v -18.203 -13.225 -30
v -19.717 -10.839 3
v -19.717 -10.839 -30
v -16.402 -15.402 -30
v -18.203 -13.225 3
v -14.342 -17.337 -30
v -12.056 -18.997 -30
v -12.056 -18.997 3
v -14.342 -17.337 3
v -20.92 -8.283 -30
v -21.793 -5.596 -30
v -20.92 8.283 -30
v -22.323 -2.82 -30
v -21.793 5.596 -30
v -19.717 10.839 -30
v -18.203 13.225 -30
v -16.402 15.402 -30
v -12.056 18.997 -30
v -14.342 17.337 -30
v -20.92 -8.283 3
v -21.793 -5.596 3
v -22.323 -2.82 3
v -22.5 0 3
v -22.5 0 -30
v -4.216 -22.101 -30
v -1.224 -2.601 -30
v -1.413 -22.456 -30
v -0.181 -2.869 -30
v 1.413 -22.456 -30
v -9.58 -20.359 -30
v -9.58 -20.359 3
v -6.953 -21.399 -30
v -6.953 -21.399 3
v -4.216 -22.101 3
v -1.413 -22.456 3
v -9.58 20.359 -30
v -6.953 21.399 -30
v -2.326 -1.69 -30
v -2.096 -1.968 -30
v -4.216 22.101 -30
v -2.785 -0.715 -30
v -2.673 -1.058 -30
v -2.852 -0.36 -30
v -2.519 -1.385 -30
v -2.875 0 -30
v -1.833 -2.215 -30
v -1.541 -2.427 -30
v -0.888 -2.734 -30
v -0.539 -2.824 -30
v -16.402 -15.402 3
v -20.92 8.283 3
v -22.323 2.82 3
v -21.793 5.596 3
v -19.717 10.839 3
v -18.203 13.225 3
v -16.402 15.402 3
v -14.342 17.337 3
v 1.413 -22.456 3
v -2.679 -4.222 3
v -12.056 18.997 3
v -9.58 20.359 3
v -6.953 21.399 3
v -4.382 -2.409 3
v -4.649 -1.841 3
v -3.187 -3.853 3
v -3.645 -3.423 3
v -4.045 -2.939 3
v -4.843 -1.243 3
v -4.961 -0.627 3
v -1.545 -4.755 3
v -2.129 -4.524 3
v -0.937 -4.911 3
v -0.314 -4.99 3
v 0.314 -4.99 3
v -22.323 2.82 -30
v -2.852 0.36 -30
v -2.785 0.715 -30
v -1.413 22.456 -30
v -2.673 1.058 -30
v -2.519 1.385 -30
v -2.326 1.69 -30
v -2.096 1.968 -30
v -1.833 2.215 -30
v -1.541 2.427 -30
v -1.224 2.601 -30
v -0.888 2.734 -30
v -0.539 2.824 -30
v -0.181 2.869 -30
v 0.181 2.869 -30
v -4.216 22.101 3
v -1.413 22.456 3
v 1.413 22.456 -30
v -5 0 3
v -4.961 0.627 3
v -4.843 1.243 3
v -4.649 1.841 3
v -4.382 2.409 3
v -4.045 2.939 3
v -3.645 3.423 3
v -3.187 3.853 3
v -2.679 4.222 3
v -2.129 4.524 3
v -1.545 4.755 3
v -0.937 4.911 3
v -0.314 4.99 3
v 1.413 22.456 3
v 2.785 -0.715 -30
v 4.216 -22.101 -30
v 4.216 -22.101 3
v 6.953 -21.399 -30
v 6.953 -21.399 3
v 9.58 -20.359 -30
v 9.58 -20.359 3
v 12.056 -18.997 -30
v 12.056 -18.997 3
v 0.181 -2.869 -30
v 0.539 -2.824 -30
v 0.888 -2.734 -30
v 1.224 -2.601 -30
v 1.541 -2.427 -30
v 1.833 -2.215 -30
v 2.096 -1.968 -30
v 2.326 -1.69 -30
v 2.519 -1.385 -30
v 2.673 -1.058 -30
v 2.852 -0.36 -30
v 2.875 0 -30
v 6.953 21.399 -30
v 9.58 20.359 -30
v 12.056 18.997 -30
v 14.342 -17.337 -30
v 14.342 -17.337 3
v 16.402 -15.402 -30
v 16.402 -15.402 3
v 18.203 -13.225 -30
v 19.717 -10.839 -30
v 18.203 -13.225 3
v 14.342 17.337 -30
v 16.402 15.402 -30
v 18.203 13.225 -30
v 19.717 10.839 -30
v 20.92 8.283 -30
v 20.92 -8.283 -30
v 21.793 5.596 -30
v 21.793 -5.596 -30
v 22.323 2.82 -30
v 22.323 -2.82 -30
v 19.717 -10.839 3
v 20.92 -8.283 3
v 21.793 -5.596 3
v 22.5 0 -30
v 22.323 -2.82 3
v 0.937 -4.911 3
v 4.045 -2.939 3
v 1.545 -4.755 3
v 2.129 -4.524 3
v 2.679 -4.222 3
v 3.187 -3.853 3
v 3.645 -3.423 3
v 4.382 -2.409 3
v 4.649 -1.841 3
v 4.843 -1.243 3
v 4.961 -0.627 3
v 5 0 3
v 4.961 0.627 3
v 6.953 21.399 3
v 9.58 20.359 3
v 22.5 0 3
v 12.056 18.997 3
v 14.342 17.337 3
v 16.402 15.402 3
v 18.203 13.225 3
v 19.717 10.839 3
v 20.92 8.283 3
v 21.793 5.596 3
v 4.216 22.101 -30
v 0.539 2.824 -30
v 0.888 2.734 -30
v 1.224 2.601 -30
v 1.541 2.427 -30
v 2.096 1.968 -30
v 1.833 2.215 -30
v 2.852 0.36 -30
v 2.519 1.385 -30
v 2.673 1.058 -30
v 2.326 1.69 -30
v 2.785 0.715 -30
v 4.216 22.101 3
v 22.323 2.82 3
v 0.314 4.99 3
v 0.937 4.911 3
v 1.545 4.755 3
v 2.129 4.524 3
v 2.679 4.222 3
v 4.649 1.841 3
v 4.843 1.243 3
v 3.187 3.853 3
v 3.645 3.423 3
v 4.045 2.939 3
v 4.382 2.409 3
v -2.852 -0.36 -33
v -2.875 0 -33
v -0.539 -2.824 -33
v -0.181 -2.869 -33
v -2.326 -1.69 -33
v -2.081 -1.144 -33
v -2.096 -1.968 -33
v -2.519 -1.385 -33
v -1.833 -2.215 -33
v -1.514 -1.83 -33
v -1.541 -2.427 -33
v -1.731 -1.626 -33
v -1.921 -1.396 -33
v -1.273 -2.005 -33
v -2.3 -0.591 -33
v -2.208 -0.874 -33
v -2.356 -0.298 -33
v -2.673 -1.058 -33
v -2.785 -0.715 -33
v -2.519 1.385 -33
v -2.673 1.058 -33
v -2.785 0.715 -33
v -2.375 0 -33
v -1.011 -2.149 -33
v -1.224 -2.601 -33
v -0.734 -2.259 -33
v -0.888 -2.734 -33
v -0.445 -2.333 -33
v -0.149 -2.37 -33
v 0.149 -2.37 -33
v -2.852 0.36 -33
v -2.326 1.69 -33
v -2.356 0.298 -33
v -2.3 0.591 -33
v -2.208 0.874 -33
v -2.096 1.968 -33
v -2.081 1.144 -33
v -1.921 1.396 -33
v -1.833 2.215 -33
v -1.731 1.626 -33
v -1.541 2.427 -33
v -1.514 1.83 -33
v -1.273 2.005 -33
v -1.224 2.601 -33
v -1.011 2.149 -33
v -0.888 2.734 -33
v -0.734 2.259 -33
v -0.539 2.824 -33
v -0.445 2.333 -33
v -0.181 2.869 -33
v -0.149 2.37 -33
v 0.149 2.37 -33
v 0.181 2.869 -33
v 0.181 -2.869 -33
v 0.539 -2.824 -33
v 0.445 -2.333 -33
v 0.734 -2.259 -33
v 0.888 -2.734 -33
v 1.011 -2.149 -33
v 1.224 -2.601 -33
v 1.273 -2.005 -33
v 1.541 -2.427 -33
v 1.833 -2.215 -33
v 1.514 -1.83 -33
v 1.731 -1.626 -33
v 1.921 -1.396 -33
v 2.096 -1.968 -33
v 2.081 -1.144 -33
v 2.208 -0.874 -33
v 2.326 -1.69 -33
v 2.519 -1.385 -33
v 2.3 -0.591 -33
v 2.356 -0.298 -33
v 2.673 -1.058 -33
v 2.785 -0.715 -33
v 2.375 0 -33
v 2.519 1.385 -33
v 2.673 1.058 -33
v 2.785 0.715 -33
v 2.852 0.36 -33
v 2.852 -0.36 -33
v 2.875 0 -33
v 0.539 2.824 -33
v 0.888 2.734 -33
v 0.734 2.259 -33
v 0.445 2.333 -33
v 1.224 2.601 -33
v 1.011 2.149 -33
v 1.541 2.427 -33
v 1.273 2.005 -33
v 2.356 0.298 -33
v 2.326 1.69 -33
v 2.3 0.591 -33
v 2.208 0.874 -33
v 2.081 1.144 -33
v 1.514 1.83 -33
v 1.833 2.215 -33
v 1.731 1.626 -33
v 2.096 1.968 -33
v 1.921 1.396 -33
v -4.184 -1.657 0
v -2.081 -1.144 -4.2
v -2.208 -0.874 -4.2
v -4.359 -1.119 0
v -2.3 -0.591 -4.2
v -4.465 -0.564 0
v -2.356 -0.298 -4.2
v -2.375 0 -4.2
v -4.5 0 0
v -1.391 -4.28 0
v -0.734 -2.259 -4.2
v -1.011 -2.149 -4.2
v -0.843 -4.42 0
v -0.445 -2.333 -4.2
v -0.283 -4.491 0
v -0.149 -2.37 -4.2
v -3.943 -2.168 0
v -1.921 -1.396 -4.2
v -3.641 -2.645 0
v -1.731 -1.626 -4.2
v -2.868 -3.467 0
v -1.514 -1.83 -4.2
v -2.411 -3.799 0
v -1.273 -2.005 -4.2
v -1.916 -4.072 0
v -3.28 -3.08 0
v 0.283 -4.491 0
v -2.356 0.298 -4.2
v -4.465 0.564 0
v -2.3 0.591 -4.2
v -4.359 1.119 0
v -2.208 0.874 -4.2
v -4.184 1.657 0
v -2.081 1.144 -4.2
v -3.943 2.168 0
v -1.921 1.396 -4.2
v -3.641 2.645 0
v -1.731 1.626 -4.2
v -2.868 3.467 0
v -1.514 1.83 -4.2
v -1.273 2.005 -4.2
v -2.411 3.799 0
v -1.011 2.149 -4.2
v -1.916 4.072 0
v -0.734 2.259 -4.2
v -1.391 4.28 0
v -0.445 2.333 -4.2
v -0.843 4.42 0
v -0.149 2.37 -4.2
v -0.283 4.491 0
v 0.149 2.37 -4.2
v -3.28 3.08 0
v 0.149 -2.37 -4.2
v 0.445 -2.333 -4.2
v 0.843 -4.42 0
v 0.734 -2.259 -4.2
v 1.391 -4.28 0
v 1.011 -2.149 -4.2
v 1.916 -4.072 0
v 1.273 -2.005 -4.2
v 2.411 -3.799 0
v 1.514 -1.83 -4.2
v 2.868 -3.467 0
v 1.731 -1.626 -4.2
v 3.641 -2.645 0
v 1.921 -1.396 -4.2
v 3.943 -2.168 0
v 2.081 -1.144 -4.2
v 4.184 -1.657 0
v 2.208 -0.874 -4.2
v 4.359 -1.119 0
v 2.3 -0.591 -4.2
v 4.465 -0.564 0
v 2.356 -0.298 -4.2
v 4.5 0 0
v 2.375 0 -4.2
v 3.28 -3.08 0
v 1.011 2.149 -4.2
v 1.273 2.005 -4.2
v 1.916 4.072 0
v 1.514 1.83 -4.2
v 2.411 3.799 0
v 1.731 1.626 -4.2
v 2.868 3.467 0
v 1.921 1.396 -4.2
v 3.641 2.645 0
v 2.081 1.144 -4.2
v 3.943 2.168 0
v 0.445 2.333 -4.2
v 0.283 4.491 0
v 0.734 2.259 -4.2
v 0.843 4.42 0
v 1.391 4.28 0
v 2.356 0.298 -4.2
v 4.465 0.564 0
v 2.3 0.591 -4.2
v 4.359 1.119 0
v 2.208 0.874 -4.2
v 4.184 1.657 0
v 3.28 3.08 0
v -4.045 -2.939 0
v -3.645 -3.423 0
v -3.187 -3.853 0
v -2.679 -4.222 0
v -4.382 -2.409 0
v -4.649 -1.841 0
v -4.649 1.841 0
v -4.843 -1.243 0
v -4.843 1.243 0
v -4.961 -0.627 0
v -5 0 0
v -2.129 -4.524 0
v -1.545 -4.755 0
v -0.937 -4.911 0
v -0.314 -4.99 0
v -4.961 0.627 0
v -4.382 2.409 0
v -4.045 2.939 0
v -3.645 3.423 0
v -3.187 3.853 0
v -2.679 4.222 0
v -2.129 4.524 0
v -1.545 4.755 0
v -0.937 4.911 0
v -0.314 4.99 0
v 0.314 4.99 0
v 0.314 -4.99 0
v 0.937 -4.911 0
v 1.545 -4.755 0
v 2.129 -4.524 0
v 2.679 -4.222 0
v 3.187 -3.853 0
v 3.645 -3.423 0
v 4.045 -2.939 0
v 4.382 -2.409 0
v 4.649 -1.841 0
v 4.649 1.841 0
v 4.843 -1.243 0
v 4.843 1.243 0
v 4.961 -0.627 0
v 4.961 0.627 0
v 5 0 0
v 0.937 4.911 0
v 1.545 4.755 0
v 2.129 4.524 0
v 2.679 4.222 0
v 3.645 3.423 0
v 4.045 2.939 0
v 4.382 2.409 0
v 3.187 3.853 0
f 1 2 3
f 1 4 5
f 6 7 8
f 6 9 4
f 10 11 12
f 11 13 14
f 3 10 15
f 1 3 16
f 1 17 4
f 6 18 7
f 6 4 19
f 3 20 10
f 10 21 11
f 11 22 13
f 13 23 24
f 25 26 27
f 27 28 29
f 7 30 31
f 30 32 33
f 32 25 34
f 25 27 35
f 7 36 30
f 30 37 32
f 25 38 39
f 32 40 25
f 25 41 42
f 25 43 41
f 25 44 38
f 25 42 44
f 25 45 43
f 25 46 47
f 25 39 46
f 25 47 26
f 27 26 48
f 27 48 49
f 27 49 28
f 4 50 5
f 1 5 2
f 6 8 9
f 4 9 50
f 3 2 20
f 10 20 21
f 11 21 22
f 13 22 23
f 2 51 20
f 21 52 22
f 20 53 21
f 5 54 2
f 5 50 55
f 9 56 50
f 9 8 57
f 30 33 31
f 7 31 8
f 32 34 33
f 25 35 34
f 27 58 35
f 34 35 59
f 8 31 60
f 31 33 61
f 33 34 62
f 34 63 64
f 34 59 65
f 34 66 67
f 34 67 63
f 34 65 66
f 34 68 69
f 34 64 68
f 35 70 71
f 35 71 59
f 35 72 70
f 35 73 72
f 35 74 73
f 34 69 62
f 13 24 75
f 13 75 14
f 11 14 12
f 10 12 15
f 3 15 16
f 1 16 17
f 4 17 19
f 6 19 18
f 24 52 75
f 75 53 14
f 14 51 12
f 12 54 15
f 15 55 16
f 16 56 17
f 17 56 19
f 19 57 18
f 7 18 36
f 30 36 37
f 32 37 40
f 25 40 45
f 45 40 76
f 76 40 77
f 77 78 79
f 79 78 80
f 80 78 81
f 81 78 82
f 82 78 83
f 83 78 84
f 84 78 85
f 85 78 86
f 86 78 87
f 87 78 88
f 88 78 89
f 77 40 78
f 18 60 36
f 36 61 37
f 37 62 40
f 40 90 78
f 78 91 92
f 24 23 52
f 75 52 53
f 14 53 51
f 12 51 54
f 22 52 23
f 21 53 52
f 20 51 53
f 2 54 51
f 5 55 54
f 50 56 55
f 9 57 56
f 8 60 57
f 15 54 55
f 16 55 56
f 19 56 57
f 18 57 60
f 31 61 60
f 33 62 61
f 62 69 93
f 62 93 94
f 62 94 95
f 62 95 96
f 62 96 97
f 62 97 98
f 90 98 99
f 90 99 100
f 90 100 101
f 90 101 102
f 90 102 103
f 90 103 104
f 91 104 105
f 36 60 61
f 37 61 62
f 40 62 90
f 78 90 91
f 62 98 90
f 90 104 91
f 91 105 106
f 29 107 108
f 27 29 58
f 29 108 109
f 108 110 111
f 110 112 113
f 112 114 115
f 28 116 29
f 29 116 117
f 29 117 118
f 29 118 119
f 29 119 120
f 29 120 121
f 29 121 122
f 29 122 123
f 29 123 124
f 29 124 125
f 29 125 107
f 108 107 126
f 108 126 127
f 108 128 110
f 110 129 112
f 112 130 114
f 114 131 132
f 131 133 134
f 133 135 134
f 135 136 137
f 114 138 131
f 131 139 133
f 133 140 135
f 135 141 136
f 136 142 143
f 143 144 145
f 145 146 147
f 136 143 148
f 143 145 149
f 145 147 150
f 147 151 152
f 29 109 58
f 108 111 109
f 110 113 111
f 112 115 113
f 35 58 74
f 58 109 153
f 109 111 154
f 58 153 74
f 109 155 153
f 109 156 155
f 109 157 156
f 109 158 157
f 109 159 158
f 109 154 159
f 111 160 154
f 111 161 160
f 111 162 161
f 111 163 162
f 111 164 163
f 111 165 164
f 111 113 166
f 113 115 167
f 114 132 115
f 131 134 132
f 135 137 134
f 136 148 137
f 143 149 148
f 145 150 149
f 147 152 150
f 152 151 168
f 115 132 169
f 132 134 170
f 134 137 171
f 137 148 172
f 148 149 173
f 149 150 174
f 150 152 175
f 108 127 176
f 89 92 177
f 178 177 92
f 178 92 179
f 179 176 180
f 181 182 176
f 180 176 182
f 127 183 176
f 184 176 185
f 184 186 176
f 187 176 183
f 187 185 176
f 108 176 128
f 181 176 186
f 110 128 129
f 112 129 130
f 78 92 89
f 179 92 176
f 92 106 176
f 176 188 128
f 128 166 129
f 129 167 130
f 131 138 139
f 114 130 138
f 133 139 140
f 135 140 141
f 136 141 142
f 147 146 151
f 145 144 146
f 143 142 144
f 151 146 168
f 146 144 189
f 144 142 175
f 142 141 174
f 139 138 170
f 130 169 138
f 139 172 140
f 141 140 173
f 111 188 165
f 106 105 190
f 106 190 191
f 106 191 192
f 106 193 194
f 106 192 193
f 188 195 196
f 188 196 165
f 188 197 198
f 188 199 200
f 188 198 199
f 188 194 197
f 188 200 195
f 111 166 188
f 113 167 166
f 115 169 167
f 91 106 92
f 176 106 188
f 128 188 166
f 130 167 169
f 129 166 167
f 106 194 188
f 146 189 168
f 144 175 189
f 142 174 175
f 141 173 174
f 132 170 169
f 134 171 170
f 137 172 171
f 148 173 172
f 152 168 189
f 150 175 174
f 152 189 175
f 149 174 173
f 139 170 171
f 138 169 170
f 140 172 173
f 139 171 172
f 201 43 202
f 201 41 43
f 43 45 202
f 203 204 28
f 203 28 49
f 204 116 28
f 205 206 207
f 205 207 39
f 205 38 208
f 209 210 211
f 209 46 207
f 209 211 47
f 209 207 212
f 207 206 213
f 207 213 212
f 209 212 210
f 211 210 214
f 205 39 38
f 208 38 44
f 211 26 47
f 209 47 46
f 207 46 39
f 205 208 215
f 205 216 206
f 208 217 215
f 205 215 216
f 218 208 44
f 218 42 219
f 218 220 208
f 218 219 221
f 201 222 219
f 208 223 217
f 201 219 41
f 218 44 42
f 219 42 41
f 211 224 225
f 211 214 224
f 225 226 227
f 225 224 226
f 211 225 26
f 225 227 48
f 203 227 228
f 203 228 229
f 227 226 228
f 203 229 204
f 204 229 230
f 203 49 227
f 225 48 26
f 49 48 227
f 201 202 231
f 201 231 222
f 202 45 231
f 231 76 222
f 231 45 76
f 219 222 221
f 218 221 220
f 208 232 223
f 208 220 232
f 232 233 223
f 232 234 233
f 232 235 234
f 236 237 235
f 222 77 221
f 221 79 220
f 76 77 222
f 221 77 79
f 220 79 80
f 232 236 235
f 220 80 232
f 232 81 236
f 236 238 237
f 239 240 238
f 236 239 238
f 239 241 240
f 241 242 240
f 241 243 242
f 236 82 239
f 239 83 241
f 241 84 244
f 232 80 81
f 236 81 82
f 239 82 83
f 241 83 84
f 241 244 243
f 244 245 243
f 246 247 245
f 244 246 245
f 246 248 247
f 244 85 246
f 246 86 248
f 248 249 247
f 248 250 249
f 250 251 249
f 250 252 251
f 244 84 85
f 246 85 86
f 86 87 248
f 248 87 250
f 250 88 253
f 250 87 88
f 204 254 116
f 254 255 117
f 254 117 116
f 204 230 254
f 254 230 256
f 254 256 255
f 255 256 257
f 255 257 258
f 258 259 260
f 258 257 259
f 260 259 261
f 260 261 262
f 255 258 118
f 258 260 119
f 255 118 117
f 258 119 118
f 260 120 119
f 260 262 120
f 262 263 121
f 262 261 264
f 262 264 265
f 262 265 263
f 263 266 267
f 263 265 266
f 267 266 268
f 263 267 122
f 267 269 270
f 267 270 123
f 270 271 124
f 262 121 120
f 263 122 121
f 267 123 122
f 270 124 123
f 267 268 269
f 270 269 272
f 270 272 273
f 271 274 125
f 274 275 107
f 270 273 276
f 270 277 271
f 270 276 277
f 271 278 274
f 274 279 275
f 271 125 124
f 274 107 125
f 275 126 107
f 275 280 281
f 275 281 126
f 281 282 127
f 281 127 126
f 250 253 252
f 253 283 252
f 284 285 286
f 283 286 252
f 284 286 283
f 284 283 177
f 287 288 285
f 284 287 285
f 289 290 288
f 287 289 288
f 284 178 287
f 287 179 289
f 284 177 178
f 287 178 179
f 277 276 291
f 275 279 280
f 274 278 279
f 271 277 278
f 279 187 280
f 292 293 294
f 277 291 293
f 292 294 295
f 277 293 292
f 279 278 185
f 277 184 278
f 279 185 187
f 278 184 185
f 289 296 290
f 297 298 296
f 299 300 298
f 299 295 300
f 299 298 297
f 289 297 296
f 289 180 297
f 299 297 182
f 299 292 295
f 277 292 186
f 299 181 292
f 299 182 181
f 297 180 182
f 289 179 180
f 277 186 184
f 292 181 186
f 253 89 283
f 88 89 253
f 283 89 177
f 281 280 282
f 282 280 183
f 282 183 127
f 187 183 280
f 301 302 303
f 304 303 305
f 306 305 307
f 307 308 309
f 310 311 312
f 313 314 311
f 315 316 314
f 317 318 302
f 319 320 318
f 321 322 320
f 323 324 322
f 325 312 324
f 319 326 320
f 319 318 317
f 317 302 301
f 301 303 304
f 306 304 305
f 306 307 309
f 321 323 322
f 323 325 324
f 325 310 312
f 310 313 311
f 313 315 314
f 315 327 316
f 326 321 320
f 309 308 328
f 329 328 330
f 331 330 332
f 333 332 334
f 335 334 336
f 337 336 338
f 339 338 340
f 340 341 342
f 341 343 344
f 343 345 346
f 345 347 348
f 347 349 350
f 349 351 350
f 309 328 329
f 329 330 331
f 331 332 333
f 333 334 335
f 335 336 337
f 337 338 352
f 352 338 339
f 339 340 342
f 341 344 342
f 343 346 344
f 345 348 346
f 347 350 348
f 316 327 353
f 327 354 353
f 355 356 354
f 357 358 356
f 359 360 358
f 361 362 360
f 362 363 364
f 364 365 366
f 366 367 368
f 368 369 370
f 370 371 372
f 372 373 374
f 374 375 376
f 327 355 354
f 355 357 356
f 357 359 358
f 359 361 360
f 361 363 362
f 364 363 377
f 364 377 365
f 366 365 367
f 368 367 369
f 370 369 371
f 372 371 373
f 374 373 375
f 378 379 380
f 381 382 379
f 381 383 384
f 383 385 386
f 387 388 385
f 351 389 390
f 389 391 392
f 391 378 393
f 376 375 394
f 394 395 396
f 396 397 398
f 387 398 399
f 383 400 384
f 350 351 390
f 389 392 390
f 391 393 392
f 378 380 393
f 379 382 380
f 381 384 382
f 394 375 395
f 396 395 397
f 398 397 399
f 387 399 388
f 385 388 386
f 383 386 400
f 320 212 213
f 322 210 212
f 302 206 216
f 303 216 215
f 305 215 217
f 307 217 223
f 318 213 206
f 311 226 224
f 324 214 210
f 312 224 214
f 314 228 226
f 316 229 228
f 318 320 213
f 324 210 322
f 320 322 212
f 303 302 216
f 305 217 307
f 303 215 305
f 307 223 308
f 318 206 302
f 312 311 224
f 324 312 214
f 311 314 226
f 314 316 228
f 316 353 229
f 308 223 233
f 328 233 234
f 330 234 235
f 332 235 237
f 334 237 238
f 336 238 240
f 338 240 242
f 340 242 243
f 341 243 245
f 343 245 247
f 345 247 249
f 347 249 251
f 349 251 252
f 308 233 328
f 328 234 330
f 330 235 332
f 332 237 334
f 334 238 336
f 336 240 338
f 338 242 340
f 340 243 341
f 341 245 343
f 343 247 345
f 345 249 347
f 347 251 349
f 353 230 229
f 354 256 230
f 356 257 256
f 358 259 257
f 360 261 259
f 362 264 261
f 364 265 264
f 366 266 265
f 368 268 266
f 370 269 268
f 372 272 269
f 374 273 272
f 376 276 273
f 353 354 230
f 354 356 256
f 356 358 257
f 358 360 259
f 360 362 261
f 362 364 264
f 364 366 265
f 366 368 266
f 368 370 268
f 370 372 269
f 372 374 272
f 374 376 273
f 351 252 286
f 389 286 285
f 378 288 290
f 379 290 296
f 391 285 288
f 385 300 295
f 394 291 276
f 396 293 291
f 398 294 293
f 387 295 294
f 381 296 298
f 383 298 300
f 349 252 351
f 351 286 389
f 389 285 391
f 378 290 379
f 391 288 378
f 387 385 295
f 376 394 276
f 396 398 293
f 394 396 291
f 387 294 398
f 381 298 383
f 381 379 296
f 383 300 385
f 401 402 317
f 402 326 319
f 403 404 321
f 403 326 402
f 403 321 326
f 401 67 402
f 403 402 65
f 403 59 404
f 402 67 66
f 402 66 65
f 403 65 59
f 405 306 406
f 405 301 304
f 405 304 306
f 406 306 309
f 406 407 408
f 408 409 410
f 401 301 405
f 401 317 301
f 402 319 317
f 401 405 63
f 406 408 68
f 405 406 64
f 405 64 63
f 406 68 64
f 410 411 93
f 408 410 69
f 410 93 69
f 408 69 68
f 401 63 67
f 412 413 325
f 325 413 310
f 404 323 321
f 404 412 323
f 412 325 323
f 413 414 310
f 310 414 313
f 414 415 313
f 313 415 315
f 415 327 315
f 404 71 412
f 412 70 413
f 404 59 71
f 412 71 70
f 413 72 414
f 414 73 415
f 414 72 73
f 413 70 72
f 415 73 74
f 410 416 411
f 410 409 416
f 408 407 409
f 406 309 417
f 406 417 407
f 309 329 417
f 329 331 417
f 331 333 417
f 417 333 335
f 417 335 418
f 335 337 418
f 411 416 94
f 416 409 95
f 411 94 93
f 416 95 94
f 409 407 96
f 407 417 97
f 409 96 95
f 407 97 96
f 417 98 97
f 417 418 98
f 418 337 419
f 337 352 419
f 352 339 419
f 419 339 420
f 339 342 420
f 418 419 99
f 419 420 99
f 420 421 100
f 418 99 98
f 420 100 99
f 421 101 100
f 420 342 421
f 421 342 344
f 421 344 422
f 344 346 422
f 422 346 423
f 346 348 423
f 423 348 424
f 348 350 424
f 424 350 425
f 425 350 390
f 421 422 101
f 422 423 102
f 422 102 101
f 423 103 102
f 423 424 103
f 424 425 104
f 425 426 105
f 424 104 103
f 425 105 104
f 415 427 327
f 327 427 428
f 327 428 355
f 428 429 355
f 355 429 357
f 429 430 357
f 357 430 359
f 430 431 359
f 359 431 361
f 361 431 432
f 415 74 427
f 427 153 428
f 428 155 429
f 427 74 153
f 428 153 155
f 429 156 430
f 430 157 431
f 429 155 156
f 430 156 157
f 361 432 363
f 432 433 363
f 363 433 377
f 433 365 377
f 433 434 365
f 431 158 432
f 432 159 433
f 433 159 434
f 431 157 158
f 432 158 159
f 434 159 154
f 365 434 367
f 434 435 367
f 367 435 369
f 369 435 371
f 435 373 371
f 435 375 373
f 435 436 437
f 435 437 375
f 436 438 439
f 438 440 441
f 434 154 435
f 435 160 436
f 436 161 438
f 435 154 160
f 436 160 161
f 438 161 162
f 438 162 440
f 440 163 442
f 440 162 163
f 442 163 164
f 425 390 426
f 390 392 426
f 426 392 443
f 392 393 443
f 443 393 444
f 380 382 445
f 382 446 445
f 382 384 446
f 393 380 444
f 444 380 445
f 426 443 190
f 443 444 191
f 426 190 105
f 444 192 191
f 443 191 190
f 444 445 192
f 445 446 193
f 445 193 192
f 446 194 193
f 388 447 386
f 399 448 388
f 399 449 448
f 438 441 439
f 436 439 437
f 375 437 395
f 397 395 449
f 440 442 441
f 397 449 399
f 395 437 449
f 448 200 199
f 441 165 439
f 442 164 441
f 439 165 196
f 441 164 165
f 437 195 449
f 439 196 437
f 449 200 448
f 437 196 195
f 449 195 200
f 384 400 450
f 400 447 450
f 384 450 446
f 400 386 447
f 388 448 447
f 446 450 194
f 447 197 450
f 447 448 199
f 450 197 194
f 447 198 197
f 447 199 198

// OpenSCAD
$fn = 50;

difference() {
	union() {
		translate(v = [0, 0, -30.0]) {
			cylinder(h = 33, r = 22.5);
		}
		#translate(v = [0, 0, -33.0]) {
			cylinder(h = 33, r = 2.875);
		}
	}
	union() {
		translate(v = [0, 0, 0]) {
			rotate(a = [0, 0, 0]) {
				difference() {
					union() {
						translate(v = [0, 0, -33.0]) {
							cylinder(h = 33, r = 2.25);
						}
						translate(v = [0, 0, -4.2]) {
							cylinder(h = 4.2, r1 = 2.375, r2 = 4.5);
						}
						translate(v = [0, 0, -33.0]) {
							cylinder(h = 33, r = 2.375);
						}
						translate(v = [0, 0, -33.0]) {
							cylinder(h = 33, r = 2.25);
						}
					}
					union();
				}
			}
		}
		#cylinder(h = 3, r = 5.0);
	}
}
